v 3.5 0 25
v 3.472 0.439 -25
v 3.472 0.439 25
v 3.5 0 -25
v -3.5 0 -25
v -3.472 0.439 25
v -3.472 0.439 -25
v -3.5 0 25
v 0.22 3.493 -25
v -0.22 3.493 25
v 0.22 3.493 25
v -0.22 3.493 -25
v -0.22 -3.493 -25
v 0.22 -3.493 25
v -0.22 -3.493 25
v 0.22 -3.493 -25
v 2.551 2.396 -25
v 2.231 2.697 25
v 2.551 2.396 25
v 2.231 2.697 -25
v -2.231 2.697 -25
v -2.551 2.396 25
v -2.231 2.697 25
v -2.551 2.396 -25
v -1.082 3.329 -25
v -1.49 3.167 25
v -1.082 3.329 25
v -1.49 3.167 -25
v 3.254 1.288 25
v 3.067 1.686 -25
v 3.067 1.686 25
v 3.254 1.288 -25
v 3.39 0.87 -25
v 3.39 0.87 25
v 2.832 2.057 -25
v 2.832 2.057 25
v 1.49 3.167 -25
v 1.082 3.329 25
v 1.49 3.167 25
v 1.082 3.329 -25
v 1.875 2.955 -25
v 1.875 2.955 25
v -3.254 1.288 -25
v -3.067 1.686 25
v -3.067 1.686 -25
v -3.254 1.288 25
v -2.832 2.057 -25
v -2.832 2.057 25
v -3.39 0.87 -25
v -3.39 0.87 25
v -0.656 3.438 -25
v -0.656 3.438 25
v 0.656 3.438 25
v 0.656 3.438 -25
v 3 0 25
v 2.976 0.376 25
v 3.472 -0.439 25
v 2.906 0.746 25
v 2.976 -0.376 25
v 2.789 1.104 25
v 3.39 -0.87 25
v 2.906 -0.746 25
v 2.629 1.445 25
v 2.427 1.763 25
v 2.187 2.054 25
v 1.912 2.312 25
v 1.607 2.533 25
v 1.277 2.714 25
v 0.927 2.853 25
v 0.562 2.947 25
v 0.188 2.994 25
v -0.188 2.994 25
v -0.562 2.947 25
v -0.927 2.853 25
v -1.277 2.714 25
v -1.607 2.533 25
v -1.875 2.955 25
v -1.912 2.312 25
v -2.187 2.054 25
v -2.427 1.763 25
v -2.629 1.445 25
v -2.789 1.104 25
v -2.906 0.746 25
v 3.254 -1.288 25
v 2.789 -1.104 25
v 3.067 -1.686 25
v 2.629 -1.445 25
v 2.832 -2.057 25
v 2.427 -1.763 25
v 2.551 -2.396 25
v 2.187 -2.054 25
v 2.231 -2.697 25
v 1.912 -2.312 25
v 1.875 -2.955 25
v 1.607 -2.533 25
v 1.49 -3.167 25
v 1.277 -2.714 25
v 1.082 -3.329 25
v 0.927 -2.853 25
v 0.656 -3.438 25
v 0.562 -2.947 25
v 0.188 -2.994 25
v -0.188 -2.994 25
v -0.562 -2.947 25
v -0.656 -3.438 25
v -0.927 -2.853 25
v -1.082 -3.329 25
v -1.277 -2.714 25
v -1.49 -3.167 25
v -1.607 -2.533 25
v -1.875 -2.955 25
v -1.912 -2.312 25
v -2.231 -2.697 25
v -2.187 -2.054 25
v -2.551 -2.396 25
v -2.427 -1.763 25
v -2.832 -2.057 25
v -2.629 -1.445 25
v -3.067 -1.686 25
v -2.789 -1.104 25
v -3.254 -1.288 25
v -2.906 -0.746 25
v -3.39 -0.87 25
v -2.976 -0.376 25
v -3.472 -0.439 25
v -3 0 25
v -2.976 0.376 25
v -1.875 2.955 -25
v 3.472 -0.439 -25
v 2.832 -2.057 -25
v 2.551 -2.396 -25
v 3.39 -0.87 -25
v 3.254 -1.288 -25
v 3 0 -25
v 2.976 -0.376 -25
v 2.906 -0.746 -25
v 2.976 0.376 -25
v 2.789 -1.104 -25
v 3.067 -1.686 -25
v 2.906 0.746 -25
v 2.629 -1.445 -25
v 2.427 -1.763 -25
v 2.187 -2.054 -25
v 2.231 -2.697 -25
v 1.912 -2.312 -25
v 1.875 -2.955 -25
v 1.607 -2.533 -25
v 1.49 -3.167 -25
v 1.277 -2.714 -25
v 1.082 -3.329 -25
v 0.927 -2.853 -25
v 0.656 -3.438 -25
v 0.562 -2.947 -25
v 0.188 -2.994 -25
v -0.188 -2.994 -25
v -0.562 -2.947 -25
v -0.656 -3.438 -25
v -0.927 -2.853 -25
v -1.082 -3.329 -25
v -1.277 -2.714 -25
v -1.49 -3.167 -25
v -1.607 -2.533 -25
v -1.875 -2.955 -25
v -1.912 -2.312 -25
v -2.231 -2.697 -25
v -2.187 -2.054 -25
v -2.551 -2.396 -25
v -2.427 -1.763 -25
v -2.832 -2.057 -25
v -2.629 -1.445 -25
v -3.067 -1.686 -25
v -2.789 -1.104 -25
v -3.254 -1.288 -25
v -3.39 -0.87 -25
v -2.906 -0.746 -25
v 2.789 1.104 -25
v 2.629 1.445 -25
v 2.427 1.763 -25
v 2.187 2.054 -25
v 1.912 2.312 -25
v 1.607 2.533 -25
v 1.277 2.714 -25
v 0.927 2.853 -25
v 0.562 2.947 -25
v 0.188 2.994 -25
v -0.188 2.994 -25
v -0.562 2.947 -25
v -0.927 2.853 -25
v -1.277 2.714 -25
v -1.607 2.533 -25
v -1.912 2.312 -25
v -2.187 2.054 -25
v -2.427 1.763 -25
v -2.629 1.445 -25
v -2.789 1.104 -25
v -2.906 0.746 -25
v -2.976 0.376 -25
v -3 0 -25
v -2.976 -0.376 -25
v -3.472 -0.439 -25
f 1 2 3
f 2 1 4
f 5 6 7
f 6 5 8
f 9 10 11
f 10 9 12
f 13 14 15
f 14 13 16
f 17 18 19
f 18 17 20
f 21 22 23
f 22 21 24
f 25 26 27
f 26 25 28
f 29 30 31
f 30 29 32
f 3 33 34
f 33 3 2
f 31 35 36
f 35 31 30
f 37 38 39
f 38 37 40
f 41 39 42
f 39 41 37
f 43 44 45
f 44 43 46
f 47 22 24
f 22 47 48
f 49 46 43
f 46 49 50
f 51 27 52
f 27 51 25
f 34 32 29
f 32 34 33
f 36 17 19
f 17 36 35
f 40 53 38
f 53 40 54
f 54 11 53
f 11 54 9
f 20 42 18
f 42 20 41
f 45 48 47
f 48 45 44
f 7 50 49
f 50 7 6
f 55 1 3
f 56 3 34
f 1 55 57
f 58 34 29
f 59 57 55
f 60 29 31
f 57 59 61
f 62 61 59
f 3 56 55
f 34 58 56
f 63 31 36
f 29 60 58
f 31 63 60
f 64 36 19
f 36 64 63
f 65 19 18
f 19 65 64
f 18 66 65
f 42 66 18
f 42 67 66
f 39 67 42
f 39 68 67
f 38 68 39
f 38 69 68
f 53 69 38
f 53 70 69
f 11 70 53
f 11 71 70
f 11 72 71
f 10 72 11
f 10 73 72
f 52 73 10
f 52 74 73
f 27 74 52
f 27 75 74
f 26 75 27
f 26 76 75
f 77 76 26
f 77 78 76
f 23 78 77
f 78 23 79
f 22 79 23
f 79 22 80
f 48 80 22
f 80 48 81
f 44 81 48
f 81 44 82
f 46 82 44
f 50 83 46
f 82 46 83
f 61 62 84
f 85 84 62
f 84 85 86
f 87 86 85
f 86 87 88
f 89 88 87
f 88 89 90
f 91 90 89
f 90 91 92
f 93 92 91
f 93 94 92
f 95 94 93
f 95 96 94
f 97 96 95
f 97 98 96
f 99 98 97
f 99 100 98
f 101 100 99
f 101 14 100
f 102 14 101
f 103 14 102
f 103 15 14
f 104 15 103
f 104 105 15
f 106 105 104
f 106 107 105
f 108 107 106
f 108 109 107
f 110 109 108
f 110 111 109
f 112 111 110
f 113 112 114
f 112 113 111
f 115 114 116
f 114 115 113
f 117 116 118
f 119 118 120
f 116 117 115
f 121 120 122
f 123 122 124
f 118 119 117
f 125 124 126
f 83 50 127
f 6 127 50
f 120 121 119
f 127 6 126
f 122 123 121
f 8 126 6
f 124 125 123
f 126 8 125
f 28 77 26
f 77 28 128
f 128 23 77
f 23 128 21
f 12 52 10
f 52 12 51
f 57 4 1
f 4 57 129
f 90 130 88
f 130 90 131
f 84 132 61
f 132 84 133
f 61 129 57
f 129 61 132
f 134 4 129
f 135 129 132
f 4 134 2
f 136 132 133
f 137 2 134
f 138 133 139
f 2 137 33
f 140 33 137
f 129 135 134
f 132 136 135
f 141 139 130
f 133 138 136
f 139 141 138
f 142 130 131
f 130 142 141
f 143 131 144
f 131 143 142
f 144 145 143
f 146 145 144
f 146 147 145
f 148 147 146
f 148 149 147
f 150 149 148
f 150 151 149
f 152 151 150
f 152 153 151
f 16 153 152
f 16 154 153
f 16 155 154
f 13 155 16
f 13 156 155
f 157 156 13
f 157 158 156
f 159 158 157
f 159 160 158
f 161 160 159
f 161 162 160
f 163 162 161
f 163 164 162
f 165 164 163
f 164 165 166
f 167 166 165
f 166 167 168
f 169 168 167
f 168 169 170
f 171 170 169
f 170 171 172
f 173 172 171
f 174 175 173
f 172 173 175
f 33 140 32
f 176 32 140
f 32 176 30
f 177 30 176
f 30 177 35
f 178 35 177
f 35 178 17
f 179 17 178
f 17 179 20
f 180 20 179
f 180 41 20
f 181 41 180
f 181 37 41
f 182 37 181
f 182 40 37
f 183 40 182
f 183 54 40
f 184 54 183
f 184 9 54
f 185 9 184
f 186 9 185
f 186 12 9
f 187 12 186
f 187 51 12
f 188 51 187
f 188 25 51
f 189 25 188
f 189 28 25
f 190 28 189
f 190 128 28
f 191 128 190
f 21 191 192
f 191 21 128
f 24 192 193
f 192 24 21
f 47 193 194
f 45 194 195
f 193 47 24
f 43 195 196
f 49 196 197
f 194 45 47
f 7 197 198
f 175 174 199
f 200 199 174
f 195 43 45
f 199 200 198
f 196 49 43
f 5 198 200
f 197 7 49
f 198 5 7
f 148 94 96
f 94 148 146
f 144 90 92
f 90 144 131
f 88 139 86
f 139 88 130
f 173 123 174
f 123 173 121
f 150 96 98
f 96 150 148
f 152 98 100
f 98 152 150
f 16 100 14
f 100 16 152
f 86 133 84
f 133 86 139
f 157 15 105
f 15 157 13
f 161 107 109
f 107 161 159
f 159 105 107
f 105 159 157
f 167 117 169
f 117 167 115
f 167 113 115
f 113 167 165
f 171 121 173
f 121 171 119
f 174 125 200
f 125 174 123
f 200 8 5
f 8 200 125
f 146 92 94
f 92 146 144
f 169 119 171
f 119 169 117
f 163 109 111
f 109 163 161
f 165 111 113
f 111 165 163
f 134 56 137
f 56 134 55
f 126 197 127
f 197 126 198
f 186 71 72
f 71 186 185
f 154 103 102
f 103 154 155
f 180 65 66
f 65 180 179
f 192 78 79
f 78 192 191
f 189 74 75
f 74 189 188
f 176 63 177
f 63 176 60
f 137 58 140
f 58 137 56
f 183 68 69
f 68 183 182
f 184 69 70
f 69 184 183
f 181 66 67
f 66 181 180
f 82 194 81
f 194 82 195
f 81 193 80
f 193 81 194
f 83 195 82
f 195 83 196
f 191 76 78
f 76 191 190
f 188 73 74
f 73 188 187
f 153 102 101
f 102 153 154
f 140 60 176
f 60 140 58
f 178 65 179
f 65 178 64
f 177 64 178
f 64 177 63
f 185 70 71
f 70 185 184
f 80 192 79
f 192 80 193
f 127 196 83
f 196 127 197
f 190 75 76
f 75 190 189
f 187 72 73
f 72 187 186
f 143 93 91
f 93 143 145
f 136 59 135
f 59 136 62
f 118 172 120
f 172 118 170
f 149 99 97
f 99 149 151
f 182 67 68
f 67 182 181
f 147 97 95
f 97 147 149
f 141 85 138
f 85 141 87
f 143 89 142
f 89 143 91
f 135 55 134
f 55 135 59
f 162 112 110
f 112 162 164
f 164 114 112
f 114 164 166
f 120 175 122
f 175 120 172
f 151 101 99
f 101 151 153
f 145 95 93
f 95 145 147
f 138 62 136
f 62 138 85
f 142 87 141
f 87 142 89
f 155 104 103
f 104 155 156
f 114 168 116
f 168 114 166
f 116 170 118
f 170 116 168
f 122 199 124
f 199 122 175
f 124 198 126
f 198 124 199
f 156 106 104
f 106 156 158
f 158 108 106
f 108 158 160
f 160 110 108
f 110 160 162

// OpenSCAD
$fn = 50;


difference() {
	union() {
		translate(v = [0, 0, -25.0000000000]) {
			cylinder(h = 50, r = 3.5000000000);
		}
	}
	union() {
		translate(v = [0, 0, -100.0000000000]) {
			cylinder(h = 200, r = 3);
		}
	}
}
